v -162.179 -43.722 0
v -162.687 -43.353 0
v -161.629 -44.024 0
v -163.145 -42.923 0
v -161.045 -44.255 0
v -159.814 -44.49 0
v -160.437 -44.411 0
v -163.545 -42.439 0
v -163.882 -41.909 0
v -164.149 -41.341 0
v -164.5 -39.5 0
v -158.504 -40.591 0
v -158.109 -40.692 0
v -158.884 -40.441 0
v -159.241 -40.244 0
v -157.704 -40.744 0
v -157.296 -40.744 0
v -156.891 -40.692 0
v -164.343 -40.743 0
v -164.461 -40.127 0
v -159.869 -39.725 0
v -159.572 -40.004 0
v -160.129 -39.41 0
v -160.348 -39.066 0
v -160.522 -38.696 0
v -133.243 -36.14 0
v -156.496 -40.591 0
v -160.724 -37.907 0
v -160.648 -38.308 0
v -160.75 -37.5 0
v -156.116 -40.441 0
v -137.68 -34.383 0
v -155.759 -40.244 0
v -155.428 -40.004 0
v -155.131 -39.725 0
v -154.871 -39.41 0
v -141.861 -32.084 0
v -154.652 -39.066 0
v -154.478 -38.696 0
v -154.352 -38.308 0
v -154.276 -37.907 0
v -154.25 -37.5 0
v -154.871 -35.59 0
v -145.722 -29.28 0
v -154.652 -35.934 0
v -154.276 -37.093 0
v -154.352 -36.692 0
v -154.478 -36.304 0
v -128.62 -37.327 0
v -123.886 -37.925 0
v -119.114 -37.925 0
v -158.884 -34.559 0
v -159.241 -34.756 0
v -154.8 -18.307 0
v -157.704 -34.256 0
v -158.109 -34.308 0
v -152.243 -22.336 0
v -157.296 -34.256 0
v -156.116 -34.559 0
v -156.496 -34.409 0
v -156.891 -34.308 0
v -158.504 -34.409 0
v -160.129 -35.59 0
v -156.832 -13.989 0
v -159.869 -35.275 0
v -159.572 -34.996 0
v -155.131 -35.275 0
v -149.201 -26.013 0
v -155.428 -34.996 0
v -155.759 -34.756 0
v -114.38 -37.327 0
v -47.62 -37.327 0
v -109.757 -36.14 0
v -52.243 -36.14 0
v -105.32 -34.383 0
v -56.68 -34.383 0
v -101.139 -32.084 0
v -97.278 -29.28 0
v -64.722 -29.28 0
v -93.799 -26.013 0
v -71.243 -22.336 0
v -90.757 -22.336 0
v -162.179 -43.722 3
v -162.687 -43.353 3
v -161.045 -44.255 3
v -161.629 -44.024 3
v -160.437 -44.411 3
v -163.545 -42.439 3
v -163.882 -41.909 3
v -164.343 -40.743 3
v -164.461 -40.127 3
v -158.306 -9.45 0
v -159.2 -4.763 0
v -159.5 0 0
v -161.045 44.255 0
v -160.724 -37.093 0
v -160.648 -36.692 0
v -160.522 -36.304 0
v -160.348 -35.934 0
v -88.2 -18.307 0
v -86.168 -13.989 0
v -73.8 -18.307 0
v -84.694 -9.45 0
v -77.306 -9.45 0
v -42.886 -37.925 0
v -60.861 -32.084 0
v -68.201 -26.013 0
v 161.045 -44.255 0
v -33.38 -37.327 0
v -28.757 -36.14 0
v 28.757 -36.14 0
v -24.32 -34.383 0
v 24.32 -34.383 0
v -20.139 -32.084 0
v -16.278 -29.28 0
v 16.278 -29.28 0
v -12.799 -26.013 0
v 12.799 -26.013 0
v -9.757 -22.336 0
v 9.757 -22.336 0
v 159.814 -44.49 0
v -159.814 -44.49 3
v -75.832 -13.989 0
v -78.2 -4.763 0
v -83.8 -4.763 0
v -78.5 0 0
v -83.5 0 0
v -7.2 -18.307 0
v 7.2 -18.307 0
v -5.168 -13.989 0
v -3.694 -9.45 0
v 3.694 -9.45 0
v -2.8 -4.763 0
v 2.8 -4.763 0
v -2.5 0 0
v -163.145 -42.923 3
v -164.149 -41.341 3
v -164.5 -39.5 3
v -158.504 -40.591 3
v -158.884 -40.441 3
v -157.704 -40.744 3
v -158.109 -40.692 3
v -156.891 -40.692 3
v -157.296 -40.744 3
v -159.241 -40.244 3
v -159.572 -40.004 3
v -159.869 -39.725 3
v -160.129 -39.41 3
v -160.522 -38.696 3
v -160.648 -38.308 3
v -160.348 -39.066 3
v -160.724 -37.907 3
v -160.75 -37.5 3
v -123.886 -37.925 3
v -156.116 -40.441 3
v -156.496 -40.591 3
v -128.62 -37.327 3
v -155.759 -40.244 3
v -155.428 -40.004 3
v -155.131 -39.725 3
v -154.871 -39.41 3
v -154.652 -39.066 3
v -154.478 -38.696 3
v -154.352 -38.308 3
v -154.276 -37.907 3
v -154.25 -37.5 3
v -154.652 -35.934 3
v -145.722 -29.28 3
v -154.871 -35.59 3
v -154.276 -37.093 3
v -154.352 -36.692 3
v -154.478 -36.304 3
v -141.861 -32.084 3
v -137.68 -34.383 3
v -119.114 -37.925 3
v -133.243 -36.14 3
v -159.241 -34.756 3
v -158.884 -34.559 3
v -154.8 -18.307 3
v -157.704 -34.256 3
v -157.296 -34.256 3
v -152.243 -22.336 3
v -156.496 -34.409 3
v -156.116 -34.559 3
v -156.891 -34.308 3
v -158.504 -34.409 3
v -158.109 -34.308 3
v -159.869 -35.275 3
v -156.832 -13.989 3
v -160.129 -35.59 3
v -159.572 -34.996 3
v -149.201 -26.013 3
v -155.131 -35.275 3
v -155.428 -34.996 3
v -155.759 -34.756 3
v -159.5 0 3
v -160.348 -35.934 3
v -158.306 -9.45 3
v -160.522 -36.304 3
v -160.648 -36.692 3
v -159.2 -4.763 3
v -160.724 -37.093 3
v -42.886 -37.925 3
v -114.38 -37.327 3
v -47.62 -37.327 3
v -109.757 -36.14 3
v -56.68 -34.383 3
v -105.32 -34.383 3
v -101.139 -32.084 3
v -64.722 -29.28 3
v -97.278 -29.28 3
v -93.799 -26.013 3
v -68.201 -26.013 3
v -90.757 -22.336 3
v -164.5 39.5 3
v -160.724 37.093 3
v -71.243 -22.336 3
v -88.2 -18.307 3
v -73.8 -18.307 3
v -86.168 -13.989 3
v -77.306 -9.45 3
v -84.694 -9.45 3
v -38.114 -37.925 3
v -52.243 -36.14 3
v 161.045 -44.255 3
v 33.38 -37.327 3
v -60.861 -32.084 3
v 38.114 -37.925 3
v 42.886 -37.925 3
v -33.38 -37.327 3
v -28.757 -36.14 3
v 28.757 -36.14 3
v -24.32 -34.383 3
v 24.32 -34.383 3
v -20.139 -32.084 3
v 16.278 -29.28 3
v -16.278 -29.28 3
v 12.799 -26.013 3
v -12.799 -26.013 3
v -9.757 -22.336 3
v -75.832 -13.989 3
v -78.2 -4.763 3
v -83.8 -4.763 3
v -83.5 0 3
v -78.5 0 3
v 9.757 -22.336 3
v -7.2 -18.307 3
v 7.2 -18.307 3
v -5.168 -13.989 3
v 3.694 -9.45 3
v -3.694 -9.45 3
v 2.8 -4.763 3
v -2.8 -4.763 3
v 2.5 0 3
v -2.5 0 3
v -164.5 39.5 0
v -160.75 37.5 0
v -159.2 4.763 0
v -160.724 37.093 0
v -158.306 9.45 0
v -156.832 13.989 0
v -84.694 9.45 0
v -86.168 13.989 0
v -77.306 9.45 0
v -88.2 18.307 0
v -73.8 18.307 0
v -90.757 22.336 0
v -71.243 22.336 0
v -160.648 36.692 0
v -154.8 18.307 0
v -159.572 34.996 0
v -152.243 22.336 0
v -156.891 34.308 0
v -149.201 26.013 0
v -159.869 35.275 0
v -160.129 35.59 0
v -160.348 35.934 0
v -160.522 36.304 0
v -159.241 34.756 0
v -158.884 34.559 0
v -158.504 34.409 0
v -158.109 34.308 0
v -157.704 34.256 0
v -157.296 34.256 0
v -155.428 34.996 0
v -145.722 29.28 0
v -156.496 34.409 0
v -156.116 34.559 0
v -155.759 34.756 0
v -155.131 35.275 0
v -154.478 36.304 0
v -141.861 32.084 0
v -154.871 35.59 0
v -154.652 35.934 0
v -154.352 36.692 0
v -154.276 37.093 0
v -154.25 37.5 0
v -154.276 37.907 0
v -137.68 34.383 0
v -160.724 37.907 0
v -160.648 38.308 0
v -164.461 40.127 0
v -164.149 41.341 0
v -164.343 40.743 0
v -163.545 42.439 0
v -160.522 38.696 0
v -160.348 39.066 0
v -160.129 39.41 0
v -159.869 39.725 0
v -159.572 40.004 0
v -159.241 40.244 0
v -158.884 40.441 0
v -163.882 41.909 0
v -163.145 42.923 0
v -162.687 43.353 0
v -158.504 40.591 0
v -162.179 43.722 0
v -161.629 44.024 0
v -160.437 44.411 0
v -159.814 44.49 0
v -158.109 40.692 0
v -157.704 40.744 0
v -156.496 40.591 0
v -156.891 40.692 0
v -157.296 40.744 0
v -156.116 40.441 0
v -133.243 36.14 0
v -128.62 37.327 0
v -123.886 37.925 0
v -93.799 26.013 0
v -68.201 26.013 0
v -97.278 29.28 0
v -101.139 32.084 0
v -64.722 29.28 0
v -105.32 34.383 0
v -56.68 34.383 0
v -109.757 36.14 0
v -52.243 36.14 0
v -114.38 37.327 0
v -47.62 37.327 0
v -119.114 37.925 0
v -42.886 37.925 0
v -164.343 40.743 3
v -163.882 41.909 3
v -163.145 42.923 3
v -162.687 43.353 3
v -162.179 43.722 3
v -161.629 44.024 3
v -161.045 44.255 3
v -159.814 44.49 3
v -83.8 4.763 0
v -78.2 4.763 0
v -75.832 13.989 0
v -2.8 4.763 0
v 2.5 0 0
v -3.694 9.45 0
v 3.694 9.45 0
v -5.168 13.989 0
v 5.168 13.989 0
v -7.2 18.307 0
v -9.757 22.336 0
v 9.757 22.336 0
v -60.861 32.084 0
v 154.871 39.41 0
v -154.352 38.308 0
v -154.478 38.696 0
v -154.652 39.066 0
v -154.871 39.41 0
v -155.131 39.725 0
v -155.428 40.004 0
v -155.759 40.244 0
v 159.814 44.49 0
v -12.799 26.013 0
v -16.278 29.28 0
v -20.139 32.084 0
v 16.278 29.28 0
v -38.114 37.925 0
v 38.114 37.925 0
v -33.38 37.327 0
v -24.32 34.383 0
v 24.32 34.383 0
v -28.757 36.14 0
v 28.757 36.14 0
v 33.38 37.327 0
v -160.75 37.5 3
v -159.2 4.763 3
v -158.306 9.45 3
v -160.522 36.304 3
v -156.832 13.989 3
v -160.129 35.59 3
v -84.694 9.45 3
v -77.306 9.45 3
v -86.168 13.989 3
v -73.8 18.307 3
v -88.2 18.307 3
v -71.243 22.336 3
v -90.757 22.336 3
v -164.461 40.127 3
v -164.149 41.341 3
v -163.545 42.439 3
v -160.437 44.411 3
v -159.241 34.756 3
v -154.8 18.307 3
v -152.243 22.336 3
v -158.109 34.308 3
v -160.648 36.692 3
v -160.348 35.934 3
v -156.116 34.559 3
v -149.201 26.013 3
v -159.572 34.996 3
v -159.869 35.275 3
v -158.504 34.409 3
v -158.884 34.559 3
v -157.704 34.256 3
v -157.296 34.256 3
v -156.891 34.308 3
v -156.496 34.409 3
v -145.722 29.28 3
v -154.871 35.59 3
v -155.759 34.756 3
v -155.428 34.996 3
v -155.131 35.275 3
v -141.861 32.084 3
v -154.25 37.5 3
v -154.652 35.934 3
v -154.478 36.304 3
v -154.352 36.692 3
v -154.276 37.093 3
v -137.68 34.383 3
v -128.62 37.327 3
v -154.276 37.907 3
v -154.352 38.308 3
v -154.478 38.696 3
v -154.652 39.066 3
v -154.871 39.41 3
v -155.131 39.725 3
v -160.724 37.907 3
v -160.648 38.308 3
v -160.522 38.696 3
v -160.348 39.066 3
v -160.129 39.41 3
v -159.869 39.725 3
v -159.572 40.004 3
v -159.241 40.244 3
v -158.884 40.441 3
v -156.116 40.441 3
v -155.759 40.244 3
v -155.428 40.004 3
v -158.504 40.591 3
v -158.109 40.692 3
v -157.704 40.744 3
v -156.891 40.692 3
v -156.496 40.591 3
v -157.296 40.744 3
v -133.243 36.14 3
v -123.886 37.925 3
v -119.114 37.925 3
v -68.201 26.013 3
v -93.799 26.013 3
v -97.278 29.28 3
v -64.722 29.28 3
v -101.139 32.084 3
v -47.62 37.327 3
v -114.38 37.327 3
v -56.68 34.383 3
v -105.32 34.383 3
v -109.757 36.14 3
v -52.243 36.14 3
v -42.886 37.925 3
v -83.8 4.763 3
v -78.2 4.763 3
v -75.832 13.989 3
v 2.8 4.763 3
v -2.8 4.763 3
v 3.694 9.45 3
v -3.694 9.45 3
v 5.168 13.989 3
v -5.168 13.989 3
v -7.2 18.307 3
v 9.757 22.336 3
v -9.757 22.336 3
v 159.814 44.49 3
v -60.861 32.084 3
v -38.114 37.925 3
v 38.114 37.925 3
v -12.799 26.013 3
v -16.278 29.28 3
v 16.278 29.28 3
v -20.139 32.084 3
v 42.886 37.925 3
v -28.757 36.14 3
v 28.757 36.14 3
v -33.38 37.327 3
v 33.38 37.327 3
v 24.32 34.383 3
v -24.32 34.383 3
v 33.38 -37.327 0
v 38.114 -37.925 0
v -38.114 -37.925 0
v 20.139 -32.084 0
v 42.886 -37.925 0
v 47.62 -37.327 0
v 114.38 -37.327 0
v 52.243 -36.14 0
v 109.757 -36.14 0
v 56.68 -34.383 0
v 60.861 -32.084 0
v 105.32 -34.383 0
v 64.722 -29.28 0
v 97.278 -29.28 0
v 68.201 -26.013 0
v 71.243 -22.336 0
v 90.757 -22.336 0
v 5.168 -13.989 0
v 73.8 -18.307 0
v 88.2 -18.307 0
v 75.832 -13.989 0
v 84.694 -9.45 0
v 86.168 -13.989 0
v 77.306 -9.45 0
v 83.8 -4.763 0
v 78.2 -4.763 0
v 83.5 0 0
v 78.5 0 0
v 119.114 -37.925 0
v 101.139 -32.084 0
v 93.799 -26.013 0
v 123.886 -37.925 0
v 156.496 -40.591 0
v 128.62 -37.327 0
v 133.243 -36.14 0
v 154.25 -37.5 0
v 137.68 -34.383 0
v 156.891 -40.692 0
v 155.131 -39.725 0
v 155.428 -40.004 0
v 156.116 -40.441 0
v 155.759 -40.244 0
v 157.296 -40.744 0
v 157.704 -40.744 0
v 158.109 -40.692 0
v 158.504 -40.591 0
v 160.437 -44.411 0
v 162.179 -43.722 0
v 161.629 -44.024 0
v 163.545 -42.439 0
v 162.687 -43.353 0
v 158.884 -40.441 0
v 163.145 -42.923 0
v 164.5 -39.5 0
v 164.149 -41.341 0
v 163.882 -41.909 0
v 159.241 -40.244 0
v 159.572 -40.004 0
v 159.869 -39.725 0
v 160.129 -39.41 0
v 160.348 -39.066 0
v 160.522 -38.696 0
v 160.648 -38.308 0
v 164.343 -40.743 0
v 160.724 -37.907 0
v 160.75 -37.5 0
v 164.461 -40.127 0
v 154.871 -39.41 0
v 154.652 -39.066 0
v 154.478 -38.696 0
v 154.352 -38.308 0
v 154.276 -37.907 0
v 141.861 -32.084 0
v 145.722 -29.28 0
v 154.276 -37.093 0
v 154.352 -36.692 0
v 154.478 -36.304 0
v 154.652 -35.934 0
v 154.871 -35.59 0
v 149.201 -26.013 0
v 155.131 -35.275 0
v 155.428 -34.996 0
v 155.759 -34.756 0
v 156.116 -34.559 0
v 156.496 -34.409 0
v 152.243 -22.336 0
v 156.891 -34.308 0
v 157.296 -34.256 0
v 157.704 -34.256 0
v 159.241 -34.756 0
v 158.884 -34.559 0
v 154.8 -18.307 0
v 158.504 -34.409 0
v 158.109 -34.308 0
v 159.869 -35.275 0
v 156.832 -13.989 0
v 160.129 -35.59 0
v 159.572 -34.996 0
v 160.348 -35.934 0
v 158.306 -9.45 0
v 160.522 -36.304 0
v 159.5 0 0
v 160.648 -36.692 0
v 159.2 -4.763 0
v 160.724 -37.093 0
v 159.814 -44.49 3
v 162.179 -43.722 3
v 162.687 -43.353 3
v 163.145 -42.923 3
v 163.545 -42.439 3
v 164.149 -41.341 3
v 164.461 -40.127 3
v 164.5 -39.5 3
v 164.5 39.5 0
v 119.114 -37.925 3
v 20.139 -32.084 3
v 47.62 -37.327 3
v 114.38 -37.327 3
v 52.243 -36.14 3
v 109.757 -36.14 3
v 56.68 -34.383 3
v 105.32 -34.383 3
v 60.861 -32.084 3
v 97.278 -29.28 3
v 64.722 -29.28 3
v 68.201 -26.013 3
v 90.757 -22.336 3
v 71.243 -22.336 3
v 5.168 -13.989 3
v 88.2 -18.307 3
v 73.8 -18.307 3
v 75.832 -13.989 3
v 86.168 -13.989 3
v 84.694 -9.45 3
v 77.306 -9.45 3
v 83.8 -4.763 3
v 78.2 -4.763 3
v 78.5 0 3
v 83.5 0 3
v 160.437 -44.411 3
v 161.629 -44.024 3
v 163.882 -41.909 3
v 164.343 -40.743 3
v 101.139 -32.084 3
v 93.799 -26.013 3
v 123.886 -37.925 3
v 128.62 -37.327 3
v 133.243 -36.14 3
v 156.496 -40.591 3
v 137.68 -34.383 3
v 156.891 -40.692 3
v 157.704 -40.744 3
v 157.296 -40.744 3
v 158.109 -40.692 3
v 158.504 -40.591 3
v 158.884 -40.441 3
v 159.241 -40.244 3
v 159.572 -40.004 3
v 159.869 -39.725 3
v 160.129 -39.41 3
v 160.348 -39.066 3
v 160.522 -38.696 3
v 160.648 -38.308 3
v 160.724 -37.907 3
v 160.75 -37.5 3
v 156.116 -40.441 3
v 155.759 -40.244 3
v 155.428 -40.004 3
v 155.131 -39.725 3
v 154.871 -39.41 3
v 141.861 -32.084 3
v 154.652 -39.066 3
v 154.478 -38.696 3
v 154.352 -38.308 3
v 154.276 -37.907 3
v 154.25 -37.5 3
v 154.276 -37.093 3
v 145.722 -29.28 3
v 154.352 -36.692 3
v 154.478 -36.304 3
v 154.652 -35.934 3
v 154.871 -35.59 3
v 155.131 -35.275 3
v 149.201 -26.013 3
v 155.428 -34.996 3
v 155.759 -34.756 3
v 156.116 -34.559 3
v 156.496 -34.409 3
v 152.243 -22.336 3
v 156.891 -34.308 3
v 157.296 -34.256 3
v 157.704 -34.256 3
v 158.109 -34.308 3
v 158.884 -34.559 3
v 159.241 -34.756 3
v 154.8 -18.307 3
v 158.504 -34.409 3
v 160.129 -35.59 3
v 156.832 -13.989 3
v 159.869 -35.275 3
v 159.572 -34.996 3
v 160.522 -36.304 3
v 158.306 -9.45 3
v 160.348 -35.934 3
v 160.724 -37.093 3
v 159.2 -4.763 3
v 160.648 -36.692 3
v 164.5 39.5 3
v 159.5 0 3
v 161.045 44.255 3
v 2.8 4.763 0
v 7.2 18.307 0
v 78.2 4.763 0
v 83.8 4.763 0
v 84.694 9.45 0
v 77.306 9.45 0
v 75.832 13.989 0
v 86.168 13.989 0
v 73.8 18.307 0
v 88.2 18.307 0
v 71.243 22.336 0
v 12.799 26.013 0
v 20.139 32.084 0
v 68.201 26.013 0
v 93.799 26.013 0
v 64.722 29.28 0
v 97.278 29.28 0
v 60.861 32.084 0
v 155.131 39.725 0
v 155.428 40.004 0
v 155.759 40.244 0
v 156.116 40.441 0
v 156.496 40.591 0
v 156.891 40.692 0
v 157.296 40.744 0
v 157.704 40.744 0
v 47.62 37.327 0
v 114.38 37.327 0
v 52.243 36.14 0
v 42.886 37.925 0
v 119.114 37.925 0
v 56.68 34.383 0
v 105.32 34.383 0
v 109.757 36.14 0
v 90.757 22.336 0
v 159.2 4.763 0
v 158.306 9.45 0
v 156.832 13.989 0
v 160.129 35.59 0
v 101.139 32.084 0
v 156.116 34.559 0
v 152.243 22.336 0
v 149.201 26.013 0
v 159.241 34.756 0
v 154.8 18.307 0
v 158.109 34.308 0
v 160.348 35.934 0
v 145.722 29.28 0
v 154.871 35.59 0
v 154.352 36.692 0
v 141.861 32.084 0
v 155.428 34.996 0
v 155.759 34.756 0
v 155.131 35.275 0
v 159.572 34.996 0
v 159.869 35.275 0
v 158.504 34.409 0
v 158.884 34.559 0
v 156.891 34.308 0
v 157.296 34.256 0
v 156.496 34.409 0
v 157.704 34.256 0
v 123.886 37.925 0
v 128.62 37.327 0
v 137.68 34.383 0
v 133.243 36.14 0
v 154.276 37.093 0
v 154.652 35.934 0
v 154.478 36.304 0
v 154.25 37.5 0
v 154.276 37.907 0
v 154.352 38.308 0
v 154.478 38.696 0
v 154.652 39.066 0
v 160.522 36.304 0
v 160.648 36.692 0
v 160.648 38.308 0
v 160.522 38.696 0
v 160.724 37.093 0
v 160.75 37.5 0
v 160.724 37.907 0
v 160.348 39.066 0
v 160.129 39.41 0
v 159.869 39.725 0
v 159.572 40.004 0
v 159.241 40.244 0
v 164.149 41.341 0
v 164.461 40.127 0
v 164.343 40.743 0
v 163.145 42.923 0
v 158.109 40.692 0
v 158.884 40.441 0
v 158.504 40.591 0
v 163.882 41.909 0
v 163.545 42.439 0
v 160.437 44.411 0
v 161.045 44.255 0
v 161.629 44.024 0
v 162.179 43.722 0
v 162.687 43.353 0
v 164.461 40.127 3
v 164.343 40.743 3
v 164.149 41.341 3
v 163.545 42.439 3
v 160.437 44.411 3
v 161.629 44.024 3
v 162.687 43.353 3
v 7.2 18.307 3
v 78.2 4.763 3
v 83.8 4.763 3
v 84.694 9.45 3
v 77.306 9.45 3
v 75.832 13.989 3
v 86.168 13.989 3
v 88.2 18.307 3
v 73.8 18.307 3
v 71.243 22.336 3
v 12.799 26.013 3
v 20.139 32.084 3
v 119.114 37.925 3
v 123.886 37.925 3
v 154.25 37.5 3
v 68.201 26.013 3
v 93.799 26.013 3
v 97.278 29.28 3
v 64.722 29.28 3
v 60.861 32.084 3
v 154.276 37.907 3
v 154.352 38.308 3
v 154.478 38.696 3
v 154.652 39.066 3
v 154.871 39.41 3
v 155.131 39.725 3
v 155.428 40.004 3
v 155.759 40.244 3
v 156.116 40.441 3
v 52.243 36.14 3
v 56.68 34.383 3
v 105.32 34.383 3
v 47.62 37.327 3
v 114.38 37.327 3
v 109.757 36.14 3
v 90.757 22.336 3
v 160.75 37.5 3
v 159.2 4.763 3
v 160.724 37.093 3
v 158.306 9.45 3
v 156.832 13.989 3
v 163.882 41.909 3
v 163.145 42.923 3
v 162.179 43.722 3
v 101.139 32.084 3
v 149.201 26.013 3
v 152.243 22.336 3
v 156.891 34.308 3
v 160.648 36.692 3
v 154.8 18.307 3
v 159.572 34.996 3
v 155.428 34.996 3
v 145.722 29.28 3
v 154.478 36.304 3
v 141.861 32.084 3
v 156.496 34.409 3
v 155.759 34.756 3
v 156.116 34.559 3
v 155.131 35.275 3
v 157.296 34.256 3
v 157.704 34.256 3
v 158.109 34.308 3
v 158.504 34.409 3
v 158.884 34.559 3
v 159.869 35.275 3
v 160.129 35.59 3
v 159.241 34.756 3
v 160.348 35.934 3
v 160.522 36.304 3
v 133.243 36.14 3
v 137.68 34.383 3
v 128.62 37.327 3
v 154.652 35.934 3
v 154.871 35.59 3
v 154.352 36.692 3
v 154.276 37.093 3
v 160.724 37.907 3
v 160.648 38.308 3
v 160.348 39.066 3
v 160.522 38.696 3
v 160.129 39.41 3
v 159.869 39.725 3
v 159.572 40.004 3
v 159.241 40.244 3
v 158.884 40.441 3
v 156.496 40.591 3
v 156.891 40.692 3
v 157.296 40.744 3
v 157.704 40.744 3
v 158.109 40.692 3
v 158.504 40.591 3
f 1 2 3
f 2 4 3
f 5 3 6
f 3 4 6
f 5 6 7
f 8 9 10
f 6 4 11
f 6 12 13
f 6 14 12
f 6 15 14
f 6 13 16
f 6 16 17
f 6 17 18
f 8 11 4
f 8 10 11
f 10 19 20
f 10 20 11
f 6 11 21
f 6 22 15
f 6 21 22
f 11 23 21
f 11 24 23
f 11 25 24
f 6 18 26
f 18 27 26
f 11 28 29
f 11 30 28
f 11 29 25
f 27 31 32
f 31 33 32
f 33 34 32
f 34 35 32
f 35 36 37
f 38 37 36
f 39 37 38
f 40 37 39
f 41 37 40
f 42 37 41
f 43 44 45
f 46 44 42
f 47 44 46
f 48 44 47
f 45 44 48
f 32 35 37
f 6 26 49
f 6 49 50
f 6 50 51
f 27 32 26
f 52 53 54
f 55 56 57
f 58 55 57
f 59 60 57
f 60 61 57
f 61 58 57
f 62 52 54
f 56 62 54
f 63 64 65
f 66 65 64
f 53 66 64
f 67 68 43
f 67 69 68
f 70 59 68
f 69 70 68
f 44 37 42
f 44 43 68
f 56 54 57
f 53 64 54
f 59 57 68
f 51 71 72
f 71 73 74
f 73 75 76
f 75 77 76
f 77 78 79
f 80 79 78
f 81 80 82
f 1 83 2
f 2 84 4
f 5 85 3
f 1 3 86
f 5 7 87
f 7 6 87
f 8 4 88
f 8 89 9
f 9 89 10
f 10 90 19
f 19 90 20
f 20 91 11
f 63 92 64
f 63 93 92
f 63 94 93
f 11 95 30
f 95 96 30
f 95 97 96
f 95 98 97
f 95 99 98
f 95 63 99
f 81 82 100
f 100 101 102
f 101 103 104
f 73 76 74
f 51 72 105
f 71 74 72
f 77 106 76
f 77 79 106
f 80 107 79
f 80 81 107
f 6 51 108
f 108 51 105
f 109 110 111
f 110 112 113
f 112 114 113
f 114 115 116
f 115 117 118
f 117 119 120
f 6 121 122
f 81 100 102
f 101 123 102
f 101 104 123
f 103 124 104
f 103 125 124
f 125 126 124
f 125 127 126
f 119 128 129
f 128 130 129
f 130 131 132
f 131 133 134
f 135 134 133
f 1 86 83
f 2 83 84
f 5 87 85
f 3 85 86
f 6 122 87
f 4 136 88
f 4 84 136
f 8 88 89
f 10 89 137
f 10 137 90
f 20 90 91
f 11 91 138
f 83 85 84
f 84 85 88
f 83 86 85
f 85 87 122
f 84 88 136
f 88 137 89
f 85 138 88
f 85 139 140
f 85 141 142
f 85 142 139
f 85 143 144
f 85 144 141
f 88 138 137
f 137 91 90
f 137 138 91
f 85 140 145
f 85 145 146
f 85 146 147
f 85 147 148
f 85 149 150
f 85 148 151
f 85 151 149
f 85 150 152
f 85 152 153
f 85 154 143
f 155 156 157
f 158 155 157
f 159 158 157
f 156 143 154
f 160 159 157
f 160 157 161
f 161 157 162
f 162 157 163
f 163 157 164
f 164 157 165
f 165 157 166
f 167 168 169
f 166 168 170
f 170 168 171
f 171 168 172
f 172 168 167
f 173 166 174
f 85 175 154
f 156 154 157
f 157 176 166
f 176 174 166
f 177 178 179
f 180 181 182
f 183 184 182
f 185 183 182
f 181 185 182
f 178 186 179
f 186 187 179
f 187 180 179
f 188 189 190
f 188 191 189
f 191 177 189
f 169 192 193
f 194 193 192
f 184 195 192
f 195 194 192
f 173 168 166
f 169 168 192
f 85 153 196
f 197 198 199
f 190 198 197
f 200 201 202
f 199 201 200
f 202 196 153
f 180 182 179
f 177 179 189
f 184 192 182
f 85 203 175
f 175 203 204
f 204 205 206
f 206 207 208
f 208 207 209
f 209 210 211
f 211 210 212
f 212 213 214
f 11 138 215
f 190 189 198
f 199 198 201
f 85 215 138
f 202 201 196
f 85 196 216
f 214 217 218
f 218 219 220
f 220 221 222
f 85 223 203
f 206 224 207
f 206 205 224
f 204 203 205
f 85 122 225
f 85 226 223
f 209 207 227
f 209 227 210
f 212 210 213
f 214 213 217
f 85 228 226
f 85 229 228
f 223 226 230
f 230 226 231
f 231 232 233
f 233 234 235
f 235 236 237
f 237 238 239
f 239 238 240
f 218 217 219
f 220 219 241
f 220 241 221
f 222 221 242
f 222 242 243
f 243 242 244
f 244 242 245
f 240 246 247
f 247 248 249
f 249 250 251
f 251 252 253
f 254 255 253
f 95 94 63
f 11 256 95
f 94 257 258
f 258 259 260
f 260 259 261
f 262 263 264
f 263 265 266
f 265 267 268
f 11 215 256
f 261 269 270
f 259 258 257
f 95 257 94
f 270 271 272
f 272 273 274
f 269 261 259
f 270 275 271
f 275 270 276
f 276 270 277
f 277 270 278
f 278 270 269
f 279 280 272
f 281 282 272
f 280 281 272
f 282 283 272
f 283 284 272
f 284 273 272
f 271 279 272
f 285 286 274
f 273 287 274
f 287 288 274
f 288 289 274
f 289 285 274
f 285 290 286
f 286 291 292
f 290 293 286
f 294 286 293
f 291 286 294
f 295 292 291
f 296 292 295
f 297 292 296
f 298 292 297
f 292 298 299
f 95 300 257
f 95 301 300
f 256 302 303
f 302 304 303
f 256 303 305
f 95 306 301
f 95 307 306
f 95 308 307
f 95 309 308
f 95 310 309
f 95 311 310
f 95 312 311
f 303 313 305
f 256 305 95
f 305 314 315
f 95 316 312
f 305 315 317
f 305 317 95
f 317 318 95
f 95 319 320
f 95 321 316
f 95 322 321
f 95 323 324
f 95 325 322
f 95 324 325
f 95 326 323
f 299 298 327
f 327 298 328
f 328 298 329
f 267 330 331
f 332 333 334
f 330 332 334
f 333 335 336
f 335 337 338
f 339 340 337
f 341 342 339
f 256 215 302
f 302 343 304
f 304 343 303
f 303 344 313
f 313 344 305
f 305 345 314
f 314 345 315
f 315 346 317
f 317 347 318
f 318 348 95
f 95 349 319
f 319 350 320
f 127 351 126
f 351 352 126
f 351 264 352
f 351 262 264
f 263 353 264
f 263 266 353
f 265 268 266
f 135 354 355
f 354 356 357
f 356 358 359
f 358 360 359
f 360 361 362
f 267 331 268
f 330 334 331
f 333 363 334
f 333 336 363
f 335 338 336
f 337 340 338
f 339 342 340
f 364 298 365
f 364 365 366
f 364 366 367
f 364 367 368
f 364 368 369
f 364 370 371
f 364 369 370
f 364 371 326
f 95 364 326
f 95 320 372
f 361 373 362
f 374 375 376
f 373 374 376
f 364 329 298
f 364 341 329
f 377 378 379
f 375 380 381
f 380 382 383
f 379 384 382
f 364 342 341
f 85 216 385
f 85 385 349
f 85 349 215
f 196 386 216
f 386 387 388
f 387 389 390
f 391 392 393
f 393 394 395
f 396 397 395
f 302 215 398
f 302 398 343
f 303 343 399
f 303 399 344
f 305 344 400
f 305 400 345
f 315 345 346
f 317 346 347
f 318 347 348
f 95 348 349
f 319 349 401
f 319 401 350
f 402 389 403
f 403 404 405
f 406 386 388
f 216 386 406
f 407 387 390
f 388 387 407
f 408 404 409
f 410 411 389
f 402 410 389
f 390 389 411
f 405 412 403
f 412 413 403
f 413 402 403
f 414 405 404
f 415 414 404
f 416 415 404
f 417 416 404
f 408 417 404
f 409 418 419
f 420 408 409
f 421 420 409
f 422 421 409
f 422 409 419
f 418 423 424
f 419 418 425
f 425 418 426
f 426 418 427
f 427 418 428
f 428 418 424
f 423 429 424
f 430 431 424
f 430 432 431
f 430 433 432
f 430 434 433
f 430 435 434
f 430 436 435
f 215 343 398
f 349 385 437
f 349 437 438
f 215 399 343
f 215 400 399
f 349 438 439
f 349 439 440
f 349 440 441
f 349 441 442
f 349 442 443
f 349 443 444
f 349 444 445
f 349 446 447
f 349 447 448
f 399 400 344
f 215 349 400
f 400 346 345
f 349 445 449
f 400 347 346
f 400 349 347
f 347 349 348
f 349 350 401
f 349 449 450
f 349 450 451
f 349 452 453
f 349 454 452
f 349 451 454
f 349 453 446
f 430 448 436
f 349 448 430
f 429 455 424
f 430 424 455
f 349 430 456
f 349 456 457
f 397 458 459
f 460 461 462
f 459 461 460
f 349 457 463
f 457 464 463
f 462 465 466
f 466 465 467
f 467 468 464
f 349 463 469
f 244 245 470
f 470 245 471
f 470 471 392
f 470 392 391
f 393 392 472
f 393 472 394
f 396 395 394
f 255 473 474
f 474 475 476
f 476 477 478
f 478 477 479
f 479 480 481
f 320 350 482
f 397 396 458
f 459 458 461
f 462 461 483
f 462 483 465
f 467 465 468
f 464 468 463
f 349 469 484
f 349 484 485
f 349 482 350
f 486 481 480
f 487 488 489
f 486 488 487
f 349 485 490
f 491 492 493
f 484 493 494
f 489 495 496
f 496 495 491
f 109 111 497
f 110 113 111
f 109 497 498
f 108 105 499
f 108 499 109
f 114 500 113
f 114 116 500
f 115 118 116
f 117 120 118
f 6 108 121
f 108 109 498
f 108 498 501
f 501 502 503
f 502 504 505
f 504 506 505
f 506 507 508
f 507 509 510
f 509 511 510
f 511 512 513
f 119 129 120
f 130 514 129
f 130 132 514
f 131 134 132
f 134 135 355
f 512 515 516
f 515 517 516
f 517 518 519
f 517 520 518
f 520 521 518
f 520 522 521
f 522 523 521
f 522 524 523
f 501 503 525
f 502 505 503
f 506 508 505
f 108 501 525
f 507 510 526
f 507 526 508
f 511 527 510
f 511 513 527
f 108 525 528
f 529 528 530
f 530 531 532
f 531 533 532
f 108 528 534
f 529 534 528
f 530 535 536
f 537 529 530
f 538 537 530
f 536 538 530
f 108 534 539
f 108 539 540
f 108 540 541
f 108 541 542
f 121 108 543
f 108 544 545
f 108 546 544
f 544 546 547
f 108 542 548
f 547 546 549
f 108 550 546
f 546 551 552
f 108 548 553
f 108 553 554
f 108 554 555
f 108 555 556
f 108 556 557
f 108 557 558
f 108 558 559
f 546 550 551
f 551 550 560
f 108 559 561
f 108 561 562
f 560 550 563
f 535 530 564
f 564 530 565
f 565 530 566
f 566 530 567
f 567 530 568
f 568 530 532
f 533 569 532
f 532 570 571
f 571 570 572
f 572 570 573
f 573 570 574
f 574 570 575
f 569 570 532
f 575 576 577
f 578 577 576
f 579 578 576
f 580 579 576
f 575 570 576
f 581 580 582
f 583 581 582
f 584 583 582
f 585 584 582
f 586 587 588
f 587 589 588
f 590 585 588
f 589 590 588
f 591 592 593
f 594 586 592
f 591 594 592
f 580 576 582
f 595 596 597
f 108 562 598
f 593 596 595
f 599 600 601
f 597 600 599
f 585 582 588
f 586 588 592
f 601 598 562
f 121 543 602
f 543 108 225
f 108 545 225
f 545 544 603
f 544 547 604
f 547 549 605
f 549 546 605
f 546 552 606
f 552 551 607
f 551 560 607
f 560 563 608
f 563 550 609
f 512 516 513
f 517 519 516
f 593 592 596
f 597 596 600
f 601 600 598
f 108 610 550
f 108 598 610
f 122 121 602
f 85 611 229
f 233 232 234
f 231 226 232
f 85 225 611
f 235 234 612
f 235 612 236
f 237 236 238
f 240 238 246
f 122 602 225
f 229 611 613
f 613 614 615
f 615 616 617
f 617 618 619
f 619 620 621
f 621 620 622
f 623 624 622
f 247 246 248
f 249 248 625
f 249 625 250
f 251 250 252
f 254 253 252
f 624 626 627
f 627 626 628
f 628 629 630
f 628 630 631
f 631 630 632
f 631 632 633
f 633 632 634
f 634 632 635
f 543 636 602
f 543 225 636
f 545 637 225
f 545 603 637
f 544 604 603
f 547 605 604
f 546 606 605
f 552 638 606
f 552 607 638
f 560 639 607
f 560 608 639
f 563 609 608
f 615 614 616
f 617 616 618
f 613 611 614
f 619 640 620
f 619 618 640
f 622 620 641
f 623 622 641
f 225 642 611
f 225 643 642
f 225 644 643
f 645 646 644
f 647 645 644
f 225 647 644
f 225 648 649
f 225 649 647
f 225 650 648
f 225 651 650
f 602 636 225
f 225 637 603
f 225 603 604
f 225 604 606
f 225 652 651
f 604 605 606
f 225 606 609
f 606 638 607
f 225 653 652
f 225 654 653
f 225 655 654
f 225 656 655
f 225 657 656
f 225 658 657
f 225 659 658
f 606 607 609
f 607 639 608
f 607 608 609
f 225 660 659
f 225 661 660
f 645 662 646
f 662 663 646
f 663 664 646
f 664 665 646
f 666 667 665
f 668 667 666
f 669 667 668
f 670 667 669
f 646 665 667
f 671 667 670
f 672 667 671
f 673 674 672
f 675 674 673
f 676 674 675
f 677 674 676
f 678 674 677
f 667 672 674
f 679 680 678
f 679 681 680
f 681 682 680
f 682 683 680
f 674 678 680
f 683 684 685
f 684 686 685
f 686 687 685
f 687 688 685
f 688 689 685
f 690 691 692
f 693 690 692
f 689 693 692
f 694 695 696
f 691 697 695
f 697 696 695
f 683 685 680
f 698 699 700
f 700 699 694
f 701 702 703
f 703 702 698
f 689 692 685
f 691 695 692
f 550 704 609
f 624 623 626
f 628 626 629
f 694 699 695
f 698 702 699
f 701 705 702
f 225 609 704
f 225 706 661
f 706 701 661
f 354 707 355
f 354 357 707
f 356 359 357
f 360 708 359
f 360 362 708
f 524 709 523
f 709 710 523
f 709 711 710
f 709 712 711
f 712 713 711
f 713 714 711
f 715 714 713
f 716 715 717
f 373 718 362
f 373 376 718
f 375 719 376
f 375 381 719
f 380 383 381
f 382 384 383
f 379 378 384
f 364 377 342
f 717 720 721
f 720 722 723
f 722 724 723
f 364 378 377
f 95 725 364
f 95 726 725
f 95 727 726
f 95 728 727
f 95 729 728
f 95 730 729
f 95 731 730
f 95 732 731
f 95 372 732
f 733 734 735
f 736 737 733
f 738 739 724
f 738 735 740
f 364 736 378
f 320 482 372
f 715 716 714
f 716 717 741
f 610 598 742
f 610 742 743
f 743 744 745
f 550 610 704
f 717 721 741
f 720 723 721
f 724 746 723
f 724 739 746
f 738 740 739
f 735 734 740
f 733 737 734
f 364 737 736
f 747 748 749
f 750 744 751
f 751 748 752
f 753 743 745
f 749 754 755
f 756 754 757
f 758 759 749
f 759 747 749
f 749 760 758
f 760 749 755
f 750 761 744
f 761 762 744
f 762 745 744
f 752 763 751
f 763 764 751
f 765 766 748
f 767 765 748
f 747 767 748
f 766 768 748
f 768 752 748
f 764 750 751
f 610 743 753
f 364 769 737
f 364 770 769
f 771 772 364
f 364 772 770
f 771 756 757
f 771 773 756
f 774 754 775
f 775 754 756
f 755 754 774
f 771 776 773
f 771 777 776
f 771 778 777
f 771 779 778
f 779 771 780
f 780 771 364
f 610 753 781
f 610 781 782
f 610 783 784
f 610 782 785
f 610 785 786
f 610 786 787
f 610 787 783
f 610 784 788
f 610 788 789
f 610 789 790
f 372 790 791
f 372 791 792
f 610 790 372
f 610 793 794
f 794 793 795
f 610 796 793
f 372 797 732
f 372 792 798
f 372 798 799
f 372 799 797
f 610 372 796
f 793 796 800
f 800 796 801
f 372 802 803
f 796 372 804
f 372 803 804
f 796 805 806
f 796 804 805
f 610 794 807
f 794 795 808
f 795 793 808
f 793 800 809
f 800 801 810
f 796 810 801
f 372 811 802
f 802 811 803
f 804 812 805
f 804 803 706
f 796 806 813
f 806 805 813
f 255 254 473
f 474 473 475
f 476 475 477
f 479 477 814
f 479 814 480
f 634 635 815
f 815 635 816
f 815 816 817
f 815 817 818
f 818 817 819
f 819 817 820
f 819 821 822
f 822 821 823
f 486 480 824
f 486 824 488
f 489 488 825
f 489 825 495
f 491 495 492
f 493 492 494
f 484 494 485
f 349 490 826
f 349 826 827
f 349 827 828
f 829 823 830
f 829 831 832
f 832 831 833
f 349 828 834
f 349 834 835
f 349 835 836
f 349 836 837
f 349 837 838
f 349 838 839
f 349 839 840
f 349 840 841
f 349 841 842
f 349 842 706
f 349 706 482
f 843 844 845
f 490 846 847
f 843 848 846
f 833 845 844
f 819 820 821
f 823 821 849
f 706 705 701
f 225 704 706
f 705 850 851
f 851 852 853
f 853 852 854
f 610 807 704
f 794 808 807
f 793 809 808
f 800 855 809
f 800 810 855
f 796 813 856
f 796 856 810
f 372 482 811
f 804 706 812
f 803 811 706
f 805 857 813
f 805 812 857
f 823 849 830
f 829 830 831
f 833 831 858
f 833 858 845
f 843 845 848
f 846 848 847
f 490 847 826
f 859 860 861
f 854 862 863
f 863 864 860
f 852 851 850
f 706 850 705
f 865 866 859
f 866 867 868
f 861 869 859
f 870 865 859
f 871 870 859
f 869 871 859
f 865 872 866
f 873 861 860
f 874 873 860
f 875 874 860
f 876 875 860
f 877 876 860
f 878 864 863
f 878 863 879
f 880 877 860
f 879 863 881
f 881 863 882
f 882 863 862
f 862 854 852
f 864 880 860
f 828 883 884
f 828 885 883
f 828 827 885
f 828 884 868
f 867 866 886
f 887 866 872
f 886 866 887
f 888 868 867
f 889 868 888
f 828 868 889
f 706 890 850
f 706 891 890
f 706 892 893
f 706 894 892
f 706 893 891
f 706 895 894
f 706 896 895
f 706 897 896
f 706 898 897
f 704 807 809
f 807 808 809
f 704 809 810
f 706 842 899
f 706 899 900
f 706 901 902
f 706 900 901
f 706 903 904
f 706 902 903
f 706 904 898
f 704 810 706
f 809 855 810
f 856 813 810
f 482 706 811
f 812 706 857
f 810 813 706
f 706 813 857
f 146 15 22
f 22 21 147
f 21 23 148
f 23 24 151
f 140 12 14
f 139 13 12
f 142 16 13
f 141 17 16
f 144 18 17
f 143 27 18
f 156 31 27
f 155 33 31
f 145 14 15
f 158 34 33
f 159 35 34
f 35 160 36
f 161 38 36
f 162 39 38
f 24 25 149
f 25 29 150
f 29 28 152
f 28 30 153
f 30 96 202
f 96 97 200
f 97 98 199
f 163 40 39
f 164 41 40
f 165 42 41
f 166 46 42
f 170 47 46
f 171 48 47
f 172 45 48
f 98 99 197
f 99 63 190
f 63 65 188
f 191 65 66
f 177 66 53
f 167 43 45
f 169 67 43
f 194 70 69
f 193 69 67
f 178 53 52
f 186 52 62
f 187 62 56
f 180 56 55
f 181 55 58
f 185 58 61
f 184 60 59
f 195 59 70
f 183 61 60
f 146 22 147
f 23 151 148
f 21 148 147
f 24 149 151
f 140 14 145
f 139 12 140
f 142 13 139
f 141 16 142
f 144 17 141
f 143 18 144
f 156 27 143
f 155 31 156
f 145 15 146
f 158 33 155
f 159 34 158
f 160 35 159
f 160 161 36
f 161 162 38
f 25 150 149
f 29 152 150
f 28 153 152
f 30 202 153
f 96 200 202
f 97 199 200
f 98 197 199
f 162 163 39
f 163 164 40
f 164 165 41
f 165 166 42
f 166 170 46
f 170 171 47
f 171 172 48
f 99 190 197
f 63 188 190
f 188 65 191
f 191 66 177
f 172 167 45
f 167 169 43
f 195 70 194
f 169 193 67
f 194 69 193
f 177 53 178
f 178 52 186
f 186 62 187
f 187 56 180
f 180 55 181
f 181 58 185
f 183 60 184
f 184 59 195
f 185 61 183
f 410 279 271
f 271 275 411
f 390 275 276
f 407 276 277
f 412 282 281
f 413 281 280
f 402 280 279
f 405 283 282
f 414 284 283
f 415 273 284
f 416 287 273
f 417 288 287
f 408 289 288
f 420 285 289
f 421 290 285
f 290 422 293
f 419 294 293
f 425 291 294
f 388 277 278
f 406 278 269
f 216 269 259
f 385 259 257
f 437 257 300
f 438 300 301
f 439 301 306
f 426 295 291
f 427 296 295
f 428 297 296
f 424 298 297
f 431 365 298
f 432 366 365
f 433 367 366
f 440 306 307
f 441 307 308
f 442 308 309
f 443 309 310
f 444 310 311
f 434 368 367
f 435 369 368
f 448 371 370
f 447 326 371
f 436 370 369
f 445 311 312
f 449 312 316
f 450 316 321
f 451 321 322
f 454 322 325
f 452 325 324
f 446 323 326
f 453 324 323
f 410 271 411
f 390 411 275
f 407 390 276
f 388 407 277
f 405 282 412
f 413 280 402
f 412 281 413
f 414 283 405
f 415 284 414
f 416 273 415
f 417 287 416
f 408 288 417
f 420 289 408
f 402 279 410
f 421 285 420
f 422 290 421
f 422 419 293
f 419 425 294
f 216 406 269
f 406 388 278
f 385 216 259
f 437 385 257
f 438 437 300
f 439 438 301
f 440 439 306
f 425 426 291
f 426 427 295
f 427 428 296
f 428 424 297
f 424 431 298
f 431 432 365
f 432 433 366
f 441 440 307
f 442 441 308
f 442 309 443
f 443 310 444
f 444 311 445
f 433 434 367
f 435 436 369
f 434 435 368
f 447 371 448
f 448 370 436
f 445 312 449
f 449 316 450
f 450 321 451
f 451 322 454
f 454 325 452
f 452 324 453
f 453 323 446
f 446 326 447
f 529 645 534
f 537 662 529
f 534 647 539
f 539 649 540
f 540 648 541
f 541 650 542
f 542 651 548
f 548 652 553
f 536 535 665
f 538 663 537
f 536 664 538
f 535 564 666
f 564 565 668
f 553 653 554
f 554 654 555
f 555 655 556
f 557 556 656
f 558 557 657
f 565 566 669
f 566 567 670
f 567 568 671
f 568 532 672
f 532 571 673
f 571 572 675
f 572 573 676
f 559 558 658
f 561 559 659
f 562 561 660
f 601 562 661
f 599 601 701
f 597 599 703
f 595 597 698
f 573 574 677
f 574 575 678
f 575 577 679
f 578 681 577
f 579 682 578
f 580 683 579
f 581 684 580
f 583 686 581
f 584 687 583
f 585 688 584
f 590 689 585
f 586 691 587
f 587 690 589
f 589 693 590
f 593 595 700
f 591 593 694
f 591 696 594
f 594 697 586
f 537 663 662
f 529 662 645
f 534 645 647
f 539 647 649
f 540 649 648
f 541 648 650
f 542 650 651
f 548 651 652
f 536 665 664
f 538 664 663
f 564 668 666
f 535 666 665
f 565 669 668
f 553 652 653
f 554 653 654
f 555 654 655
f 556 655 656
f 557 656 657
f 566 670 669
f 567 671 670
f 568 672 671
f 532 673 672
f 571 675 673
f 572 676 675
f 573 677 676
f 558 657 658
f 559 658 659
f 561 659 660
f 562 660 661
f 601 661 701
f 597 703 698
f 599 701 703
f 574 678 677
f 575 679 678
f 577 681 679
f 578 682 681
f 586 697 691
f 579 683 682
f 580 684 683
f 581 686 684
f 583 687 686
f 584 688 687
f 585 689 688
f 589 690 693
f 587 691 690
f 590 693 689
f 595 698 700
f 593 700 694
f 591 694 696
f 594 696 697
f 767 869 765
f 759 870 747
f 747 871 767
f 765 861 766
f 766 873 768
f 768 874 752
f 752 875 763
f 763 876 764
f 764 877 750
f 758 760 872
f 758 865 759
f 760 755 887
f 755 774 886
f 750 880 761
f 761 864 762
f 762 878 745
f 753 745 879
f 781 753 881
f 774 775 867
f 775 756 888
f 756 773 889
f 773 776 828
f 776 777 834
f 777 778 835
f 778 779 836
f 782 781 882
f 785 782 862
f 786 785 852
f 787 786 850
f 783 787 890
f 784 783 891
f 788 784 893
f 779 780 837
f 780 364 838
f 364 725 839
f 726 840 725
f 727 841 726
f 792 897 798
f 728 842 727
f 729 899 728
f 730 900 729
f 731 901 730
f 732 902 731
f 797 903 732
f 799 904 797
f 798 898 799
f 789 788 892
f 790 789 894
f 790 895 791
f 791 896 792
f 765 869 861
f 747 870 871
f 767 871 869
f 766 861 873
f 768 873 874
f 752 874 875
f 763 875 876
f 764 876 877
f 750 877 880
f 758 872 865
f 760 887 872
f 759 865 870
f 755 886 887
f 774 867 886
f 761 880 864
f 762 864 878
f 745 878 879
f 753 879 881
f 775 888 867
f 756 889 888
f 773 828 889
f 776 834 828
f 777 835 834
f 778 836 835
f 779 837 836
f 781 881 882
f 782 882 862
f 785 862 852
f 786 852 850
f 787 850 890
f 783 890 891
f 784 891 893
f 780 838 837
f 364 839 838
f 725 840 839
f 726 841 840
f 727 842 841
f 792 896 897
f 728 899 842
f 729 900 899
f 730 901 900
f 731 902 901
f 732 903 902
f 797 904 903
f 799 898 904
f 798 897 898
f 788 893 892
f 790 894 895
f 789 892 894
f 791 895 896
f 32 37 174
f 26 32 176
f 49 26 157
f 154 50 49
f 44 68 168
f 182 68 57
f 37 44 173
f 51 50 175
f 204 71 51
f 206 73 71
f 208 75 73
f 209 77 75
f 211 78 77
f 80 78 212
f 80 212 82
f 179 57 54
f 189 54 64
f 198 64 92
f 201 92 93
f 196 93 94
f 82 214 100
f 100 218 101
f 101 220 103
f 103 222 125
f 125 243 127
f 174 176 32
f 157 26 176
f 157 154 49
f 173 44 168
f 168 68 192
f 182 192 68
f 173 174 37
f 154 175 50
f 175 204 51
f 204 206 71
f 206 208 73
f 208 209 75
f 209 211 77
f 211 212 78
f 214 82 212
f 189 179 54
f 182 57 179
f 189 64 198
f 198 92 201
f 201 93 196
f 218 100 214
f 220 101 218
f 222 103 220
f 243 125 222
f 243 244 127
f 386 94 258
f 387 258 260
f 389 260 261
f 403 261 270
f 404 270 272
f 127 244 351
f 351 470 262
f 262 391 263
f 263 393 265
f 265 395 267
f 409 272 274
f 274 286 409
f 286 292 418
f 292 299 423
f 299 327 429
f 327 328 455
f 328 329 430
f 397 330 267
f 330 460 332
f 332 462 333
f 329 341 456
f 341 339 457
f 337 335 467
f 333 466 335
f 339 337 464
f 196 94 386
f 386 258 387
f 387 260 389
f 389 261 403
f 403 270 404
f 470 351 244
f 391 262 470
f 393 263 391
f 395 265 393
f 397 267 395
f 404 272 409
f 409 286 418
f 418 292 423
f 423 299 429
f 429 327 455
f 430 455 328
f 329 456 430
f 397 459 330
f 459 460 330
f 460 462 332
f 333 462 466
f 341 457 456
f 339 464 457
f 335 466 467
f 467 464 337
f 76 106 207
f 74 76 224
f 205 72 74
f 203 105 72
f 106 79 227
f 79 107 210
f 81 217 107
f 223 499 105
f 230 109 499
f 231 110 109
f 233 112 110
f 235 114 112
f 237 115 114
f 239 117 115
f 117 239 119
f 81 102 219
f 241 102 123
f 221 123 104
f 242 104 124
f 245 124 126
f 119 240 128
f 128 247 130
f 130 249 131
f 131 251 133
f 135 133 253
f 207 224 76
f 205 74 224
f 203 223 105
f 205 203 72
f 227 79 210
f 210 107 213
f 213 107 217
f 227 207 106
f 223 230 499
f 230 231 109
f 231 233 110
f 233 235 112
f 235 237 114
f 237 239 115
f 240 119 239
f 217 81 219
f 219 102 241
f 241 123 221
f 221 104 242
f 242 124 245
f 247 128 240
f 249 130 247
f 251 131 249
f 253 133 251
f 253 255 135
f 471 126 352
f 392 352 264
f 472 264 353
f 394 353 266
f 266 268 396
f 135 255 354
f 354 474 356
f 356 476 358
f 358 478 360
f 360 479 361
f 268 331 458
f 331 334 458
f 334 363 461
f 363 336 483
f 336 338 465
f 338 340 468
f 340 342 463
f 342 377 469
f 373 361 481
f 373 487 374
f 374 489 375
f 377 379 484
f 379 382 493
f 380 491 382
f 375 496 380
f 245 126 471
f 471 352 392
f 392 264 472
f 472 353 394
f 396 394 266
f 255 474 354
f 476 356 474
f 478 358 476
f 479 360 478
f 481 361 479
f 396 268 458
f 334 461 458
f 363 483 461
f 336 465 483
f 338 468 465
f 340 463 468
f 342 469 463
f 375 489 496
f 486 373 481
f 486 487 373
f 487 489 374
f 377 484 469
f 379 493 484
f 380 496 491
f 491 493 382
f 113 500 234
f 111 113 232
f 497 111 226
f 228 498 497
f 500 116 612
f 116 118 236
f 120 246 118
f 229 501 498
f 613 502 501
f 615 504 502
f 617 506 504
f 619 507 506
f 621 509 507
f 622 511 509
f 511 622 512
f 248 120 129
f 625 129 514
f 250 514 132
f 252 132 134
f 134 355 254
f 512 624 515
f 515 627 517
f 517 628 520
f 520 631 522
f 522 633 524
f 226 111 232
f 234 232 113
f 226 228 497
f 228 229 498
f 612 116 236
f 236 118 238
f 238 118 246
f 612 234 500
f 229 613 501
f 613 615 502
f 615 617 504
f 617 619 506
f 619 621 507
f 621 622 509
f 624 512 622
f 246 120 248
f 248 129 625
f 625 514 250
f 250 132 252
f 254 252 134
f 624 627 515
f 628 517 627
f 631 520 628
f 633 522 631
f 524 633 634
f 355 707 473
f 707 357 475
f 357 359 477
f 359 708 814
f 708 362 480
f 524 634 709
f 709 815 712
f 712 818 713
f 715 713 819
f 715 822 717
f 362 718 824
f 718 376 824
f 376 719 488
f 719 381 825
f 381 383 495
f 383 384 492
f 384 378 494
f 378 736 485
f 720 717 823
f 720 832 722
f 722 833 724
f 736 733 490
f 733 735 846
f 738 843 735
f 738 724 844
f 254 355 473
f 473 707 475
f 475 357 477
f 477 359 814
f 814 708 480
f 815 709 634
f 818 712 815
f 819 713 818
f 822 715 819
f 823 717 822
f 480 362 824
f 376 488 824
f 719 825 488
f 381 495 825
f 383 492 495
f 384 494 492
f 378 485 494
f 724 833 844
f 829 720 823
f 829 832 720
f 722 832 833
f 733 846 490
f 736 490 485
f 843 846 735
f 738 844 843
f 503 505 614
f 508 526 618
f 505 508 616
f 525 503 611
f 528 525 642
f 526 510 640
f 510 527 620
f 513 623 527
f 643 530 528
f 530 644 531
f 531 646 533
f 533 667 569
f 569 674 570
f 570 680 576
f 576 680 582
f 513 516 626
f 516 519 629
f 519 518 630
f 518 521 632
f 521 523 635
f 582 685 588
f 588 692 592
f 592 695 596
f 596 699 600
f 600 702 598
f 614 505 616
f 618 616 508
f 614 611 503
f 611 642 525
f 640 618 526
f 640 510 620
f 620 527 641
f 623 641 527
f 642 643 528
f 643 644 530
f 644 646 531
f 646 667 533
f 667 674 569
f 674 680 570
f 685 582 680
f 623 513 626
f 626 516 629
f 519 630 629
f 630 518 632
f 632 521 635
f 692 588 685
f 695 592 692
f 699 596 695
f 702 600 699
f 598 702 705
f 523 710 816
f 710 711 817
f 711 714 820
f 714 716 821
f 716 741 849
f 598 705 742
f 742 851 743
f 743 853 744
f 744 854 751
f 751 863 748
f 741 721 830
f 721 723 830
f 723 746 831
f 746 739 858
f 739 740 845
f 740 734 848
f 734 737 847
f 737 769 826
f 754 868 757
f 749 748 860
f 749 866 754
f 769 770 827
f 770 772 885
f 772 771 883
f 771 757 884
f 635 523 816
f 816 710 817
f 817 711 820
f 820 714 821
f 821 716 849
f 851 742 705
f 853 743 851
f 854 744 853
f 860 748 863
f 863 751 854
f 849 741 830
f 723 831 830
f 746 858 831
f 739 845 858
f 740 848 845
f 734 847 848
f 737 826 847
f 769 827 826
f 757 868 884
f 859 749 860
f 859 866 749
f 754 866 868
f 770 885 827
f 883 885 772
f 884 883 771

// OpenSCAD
$fn = 50;

difference() {
	union() {
		hull() {
			translate(v = [-159.5, 39.5, 0]) {
				cylinder(h = 3, r = 5);
			}
			translate(v = [159.5, 39.5, 0]) {
				cylinder(h = 3, r = 5);
			}
			translate(v = [-159.5, -39.5, 0]) {
				cylinder(h = 3, r = 5);
			}
			translate(v = [159.5, -39.5, 0]) {
				cylinder(h = 3, r = 5);
			}
		}
	}
	union() {
		translate(v = [-157.5, -37.5, -100.0]) {
			cylinder(h = 200, r = 3.25);
		}
		translate(v = [-157.5, 37.5, -100.0]) {
			cylinder(h = 200, r = 3.25);
		}
		translate(v = [157.5, -37.5, -100.0]) {
			cylinder(h = 200, r = 3.25);
		}
		translate(v = [157.5, 37.5, -100.0]) {
			cylinder(h = 200, r = 3.25);
		}
		translate(v = [-157.5, -37.5, -100.0]) {
			cylinder(h = 200, r = 1.8);
		}
		translate(v = [-157.5, 37.5, -100.0]) {
			cylinder(h = 200, r = 1.8);
		}
		translate(v = [157.5, -37.5, -100.0]) {
			cylinder(h = 200, r = 1.8);
		}
		translate(v = [157.5, 37.5, -100.0]) {
			cylinder(h = 200, r = 1.8);
		}
		translate(v = [-121.5, 0, 0.0]) {
			cylinder(h = 3, r = 38.0);
		}
		translate(v = [-40.5, 0, 0.0]) {
			cylinder(h = 3, r = 38.0);
		}
		translate(v = [40.5, 0, 0.0]) {
			cylinder(h = 3, r = 38.0);
		}
		translate(v = [121.5, 0, 0.0]) {
			cylinder(h = 3, r = 38.0);
		}
	}
}
